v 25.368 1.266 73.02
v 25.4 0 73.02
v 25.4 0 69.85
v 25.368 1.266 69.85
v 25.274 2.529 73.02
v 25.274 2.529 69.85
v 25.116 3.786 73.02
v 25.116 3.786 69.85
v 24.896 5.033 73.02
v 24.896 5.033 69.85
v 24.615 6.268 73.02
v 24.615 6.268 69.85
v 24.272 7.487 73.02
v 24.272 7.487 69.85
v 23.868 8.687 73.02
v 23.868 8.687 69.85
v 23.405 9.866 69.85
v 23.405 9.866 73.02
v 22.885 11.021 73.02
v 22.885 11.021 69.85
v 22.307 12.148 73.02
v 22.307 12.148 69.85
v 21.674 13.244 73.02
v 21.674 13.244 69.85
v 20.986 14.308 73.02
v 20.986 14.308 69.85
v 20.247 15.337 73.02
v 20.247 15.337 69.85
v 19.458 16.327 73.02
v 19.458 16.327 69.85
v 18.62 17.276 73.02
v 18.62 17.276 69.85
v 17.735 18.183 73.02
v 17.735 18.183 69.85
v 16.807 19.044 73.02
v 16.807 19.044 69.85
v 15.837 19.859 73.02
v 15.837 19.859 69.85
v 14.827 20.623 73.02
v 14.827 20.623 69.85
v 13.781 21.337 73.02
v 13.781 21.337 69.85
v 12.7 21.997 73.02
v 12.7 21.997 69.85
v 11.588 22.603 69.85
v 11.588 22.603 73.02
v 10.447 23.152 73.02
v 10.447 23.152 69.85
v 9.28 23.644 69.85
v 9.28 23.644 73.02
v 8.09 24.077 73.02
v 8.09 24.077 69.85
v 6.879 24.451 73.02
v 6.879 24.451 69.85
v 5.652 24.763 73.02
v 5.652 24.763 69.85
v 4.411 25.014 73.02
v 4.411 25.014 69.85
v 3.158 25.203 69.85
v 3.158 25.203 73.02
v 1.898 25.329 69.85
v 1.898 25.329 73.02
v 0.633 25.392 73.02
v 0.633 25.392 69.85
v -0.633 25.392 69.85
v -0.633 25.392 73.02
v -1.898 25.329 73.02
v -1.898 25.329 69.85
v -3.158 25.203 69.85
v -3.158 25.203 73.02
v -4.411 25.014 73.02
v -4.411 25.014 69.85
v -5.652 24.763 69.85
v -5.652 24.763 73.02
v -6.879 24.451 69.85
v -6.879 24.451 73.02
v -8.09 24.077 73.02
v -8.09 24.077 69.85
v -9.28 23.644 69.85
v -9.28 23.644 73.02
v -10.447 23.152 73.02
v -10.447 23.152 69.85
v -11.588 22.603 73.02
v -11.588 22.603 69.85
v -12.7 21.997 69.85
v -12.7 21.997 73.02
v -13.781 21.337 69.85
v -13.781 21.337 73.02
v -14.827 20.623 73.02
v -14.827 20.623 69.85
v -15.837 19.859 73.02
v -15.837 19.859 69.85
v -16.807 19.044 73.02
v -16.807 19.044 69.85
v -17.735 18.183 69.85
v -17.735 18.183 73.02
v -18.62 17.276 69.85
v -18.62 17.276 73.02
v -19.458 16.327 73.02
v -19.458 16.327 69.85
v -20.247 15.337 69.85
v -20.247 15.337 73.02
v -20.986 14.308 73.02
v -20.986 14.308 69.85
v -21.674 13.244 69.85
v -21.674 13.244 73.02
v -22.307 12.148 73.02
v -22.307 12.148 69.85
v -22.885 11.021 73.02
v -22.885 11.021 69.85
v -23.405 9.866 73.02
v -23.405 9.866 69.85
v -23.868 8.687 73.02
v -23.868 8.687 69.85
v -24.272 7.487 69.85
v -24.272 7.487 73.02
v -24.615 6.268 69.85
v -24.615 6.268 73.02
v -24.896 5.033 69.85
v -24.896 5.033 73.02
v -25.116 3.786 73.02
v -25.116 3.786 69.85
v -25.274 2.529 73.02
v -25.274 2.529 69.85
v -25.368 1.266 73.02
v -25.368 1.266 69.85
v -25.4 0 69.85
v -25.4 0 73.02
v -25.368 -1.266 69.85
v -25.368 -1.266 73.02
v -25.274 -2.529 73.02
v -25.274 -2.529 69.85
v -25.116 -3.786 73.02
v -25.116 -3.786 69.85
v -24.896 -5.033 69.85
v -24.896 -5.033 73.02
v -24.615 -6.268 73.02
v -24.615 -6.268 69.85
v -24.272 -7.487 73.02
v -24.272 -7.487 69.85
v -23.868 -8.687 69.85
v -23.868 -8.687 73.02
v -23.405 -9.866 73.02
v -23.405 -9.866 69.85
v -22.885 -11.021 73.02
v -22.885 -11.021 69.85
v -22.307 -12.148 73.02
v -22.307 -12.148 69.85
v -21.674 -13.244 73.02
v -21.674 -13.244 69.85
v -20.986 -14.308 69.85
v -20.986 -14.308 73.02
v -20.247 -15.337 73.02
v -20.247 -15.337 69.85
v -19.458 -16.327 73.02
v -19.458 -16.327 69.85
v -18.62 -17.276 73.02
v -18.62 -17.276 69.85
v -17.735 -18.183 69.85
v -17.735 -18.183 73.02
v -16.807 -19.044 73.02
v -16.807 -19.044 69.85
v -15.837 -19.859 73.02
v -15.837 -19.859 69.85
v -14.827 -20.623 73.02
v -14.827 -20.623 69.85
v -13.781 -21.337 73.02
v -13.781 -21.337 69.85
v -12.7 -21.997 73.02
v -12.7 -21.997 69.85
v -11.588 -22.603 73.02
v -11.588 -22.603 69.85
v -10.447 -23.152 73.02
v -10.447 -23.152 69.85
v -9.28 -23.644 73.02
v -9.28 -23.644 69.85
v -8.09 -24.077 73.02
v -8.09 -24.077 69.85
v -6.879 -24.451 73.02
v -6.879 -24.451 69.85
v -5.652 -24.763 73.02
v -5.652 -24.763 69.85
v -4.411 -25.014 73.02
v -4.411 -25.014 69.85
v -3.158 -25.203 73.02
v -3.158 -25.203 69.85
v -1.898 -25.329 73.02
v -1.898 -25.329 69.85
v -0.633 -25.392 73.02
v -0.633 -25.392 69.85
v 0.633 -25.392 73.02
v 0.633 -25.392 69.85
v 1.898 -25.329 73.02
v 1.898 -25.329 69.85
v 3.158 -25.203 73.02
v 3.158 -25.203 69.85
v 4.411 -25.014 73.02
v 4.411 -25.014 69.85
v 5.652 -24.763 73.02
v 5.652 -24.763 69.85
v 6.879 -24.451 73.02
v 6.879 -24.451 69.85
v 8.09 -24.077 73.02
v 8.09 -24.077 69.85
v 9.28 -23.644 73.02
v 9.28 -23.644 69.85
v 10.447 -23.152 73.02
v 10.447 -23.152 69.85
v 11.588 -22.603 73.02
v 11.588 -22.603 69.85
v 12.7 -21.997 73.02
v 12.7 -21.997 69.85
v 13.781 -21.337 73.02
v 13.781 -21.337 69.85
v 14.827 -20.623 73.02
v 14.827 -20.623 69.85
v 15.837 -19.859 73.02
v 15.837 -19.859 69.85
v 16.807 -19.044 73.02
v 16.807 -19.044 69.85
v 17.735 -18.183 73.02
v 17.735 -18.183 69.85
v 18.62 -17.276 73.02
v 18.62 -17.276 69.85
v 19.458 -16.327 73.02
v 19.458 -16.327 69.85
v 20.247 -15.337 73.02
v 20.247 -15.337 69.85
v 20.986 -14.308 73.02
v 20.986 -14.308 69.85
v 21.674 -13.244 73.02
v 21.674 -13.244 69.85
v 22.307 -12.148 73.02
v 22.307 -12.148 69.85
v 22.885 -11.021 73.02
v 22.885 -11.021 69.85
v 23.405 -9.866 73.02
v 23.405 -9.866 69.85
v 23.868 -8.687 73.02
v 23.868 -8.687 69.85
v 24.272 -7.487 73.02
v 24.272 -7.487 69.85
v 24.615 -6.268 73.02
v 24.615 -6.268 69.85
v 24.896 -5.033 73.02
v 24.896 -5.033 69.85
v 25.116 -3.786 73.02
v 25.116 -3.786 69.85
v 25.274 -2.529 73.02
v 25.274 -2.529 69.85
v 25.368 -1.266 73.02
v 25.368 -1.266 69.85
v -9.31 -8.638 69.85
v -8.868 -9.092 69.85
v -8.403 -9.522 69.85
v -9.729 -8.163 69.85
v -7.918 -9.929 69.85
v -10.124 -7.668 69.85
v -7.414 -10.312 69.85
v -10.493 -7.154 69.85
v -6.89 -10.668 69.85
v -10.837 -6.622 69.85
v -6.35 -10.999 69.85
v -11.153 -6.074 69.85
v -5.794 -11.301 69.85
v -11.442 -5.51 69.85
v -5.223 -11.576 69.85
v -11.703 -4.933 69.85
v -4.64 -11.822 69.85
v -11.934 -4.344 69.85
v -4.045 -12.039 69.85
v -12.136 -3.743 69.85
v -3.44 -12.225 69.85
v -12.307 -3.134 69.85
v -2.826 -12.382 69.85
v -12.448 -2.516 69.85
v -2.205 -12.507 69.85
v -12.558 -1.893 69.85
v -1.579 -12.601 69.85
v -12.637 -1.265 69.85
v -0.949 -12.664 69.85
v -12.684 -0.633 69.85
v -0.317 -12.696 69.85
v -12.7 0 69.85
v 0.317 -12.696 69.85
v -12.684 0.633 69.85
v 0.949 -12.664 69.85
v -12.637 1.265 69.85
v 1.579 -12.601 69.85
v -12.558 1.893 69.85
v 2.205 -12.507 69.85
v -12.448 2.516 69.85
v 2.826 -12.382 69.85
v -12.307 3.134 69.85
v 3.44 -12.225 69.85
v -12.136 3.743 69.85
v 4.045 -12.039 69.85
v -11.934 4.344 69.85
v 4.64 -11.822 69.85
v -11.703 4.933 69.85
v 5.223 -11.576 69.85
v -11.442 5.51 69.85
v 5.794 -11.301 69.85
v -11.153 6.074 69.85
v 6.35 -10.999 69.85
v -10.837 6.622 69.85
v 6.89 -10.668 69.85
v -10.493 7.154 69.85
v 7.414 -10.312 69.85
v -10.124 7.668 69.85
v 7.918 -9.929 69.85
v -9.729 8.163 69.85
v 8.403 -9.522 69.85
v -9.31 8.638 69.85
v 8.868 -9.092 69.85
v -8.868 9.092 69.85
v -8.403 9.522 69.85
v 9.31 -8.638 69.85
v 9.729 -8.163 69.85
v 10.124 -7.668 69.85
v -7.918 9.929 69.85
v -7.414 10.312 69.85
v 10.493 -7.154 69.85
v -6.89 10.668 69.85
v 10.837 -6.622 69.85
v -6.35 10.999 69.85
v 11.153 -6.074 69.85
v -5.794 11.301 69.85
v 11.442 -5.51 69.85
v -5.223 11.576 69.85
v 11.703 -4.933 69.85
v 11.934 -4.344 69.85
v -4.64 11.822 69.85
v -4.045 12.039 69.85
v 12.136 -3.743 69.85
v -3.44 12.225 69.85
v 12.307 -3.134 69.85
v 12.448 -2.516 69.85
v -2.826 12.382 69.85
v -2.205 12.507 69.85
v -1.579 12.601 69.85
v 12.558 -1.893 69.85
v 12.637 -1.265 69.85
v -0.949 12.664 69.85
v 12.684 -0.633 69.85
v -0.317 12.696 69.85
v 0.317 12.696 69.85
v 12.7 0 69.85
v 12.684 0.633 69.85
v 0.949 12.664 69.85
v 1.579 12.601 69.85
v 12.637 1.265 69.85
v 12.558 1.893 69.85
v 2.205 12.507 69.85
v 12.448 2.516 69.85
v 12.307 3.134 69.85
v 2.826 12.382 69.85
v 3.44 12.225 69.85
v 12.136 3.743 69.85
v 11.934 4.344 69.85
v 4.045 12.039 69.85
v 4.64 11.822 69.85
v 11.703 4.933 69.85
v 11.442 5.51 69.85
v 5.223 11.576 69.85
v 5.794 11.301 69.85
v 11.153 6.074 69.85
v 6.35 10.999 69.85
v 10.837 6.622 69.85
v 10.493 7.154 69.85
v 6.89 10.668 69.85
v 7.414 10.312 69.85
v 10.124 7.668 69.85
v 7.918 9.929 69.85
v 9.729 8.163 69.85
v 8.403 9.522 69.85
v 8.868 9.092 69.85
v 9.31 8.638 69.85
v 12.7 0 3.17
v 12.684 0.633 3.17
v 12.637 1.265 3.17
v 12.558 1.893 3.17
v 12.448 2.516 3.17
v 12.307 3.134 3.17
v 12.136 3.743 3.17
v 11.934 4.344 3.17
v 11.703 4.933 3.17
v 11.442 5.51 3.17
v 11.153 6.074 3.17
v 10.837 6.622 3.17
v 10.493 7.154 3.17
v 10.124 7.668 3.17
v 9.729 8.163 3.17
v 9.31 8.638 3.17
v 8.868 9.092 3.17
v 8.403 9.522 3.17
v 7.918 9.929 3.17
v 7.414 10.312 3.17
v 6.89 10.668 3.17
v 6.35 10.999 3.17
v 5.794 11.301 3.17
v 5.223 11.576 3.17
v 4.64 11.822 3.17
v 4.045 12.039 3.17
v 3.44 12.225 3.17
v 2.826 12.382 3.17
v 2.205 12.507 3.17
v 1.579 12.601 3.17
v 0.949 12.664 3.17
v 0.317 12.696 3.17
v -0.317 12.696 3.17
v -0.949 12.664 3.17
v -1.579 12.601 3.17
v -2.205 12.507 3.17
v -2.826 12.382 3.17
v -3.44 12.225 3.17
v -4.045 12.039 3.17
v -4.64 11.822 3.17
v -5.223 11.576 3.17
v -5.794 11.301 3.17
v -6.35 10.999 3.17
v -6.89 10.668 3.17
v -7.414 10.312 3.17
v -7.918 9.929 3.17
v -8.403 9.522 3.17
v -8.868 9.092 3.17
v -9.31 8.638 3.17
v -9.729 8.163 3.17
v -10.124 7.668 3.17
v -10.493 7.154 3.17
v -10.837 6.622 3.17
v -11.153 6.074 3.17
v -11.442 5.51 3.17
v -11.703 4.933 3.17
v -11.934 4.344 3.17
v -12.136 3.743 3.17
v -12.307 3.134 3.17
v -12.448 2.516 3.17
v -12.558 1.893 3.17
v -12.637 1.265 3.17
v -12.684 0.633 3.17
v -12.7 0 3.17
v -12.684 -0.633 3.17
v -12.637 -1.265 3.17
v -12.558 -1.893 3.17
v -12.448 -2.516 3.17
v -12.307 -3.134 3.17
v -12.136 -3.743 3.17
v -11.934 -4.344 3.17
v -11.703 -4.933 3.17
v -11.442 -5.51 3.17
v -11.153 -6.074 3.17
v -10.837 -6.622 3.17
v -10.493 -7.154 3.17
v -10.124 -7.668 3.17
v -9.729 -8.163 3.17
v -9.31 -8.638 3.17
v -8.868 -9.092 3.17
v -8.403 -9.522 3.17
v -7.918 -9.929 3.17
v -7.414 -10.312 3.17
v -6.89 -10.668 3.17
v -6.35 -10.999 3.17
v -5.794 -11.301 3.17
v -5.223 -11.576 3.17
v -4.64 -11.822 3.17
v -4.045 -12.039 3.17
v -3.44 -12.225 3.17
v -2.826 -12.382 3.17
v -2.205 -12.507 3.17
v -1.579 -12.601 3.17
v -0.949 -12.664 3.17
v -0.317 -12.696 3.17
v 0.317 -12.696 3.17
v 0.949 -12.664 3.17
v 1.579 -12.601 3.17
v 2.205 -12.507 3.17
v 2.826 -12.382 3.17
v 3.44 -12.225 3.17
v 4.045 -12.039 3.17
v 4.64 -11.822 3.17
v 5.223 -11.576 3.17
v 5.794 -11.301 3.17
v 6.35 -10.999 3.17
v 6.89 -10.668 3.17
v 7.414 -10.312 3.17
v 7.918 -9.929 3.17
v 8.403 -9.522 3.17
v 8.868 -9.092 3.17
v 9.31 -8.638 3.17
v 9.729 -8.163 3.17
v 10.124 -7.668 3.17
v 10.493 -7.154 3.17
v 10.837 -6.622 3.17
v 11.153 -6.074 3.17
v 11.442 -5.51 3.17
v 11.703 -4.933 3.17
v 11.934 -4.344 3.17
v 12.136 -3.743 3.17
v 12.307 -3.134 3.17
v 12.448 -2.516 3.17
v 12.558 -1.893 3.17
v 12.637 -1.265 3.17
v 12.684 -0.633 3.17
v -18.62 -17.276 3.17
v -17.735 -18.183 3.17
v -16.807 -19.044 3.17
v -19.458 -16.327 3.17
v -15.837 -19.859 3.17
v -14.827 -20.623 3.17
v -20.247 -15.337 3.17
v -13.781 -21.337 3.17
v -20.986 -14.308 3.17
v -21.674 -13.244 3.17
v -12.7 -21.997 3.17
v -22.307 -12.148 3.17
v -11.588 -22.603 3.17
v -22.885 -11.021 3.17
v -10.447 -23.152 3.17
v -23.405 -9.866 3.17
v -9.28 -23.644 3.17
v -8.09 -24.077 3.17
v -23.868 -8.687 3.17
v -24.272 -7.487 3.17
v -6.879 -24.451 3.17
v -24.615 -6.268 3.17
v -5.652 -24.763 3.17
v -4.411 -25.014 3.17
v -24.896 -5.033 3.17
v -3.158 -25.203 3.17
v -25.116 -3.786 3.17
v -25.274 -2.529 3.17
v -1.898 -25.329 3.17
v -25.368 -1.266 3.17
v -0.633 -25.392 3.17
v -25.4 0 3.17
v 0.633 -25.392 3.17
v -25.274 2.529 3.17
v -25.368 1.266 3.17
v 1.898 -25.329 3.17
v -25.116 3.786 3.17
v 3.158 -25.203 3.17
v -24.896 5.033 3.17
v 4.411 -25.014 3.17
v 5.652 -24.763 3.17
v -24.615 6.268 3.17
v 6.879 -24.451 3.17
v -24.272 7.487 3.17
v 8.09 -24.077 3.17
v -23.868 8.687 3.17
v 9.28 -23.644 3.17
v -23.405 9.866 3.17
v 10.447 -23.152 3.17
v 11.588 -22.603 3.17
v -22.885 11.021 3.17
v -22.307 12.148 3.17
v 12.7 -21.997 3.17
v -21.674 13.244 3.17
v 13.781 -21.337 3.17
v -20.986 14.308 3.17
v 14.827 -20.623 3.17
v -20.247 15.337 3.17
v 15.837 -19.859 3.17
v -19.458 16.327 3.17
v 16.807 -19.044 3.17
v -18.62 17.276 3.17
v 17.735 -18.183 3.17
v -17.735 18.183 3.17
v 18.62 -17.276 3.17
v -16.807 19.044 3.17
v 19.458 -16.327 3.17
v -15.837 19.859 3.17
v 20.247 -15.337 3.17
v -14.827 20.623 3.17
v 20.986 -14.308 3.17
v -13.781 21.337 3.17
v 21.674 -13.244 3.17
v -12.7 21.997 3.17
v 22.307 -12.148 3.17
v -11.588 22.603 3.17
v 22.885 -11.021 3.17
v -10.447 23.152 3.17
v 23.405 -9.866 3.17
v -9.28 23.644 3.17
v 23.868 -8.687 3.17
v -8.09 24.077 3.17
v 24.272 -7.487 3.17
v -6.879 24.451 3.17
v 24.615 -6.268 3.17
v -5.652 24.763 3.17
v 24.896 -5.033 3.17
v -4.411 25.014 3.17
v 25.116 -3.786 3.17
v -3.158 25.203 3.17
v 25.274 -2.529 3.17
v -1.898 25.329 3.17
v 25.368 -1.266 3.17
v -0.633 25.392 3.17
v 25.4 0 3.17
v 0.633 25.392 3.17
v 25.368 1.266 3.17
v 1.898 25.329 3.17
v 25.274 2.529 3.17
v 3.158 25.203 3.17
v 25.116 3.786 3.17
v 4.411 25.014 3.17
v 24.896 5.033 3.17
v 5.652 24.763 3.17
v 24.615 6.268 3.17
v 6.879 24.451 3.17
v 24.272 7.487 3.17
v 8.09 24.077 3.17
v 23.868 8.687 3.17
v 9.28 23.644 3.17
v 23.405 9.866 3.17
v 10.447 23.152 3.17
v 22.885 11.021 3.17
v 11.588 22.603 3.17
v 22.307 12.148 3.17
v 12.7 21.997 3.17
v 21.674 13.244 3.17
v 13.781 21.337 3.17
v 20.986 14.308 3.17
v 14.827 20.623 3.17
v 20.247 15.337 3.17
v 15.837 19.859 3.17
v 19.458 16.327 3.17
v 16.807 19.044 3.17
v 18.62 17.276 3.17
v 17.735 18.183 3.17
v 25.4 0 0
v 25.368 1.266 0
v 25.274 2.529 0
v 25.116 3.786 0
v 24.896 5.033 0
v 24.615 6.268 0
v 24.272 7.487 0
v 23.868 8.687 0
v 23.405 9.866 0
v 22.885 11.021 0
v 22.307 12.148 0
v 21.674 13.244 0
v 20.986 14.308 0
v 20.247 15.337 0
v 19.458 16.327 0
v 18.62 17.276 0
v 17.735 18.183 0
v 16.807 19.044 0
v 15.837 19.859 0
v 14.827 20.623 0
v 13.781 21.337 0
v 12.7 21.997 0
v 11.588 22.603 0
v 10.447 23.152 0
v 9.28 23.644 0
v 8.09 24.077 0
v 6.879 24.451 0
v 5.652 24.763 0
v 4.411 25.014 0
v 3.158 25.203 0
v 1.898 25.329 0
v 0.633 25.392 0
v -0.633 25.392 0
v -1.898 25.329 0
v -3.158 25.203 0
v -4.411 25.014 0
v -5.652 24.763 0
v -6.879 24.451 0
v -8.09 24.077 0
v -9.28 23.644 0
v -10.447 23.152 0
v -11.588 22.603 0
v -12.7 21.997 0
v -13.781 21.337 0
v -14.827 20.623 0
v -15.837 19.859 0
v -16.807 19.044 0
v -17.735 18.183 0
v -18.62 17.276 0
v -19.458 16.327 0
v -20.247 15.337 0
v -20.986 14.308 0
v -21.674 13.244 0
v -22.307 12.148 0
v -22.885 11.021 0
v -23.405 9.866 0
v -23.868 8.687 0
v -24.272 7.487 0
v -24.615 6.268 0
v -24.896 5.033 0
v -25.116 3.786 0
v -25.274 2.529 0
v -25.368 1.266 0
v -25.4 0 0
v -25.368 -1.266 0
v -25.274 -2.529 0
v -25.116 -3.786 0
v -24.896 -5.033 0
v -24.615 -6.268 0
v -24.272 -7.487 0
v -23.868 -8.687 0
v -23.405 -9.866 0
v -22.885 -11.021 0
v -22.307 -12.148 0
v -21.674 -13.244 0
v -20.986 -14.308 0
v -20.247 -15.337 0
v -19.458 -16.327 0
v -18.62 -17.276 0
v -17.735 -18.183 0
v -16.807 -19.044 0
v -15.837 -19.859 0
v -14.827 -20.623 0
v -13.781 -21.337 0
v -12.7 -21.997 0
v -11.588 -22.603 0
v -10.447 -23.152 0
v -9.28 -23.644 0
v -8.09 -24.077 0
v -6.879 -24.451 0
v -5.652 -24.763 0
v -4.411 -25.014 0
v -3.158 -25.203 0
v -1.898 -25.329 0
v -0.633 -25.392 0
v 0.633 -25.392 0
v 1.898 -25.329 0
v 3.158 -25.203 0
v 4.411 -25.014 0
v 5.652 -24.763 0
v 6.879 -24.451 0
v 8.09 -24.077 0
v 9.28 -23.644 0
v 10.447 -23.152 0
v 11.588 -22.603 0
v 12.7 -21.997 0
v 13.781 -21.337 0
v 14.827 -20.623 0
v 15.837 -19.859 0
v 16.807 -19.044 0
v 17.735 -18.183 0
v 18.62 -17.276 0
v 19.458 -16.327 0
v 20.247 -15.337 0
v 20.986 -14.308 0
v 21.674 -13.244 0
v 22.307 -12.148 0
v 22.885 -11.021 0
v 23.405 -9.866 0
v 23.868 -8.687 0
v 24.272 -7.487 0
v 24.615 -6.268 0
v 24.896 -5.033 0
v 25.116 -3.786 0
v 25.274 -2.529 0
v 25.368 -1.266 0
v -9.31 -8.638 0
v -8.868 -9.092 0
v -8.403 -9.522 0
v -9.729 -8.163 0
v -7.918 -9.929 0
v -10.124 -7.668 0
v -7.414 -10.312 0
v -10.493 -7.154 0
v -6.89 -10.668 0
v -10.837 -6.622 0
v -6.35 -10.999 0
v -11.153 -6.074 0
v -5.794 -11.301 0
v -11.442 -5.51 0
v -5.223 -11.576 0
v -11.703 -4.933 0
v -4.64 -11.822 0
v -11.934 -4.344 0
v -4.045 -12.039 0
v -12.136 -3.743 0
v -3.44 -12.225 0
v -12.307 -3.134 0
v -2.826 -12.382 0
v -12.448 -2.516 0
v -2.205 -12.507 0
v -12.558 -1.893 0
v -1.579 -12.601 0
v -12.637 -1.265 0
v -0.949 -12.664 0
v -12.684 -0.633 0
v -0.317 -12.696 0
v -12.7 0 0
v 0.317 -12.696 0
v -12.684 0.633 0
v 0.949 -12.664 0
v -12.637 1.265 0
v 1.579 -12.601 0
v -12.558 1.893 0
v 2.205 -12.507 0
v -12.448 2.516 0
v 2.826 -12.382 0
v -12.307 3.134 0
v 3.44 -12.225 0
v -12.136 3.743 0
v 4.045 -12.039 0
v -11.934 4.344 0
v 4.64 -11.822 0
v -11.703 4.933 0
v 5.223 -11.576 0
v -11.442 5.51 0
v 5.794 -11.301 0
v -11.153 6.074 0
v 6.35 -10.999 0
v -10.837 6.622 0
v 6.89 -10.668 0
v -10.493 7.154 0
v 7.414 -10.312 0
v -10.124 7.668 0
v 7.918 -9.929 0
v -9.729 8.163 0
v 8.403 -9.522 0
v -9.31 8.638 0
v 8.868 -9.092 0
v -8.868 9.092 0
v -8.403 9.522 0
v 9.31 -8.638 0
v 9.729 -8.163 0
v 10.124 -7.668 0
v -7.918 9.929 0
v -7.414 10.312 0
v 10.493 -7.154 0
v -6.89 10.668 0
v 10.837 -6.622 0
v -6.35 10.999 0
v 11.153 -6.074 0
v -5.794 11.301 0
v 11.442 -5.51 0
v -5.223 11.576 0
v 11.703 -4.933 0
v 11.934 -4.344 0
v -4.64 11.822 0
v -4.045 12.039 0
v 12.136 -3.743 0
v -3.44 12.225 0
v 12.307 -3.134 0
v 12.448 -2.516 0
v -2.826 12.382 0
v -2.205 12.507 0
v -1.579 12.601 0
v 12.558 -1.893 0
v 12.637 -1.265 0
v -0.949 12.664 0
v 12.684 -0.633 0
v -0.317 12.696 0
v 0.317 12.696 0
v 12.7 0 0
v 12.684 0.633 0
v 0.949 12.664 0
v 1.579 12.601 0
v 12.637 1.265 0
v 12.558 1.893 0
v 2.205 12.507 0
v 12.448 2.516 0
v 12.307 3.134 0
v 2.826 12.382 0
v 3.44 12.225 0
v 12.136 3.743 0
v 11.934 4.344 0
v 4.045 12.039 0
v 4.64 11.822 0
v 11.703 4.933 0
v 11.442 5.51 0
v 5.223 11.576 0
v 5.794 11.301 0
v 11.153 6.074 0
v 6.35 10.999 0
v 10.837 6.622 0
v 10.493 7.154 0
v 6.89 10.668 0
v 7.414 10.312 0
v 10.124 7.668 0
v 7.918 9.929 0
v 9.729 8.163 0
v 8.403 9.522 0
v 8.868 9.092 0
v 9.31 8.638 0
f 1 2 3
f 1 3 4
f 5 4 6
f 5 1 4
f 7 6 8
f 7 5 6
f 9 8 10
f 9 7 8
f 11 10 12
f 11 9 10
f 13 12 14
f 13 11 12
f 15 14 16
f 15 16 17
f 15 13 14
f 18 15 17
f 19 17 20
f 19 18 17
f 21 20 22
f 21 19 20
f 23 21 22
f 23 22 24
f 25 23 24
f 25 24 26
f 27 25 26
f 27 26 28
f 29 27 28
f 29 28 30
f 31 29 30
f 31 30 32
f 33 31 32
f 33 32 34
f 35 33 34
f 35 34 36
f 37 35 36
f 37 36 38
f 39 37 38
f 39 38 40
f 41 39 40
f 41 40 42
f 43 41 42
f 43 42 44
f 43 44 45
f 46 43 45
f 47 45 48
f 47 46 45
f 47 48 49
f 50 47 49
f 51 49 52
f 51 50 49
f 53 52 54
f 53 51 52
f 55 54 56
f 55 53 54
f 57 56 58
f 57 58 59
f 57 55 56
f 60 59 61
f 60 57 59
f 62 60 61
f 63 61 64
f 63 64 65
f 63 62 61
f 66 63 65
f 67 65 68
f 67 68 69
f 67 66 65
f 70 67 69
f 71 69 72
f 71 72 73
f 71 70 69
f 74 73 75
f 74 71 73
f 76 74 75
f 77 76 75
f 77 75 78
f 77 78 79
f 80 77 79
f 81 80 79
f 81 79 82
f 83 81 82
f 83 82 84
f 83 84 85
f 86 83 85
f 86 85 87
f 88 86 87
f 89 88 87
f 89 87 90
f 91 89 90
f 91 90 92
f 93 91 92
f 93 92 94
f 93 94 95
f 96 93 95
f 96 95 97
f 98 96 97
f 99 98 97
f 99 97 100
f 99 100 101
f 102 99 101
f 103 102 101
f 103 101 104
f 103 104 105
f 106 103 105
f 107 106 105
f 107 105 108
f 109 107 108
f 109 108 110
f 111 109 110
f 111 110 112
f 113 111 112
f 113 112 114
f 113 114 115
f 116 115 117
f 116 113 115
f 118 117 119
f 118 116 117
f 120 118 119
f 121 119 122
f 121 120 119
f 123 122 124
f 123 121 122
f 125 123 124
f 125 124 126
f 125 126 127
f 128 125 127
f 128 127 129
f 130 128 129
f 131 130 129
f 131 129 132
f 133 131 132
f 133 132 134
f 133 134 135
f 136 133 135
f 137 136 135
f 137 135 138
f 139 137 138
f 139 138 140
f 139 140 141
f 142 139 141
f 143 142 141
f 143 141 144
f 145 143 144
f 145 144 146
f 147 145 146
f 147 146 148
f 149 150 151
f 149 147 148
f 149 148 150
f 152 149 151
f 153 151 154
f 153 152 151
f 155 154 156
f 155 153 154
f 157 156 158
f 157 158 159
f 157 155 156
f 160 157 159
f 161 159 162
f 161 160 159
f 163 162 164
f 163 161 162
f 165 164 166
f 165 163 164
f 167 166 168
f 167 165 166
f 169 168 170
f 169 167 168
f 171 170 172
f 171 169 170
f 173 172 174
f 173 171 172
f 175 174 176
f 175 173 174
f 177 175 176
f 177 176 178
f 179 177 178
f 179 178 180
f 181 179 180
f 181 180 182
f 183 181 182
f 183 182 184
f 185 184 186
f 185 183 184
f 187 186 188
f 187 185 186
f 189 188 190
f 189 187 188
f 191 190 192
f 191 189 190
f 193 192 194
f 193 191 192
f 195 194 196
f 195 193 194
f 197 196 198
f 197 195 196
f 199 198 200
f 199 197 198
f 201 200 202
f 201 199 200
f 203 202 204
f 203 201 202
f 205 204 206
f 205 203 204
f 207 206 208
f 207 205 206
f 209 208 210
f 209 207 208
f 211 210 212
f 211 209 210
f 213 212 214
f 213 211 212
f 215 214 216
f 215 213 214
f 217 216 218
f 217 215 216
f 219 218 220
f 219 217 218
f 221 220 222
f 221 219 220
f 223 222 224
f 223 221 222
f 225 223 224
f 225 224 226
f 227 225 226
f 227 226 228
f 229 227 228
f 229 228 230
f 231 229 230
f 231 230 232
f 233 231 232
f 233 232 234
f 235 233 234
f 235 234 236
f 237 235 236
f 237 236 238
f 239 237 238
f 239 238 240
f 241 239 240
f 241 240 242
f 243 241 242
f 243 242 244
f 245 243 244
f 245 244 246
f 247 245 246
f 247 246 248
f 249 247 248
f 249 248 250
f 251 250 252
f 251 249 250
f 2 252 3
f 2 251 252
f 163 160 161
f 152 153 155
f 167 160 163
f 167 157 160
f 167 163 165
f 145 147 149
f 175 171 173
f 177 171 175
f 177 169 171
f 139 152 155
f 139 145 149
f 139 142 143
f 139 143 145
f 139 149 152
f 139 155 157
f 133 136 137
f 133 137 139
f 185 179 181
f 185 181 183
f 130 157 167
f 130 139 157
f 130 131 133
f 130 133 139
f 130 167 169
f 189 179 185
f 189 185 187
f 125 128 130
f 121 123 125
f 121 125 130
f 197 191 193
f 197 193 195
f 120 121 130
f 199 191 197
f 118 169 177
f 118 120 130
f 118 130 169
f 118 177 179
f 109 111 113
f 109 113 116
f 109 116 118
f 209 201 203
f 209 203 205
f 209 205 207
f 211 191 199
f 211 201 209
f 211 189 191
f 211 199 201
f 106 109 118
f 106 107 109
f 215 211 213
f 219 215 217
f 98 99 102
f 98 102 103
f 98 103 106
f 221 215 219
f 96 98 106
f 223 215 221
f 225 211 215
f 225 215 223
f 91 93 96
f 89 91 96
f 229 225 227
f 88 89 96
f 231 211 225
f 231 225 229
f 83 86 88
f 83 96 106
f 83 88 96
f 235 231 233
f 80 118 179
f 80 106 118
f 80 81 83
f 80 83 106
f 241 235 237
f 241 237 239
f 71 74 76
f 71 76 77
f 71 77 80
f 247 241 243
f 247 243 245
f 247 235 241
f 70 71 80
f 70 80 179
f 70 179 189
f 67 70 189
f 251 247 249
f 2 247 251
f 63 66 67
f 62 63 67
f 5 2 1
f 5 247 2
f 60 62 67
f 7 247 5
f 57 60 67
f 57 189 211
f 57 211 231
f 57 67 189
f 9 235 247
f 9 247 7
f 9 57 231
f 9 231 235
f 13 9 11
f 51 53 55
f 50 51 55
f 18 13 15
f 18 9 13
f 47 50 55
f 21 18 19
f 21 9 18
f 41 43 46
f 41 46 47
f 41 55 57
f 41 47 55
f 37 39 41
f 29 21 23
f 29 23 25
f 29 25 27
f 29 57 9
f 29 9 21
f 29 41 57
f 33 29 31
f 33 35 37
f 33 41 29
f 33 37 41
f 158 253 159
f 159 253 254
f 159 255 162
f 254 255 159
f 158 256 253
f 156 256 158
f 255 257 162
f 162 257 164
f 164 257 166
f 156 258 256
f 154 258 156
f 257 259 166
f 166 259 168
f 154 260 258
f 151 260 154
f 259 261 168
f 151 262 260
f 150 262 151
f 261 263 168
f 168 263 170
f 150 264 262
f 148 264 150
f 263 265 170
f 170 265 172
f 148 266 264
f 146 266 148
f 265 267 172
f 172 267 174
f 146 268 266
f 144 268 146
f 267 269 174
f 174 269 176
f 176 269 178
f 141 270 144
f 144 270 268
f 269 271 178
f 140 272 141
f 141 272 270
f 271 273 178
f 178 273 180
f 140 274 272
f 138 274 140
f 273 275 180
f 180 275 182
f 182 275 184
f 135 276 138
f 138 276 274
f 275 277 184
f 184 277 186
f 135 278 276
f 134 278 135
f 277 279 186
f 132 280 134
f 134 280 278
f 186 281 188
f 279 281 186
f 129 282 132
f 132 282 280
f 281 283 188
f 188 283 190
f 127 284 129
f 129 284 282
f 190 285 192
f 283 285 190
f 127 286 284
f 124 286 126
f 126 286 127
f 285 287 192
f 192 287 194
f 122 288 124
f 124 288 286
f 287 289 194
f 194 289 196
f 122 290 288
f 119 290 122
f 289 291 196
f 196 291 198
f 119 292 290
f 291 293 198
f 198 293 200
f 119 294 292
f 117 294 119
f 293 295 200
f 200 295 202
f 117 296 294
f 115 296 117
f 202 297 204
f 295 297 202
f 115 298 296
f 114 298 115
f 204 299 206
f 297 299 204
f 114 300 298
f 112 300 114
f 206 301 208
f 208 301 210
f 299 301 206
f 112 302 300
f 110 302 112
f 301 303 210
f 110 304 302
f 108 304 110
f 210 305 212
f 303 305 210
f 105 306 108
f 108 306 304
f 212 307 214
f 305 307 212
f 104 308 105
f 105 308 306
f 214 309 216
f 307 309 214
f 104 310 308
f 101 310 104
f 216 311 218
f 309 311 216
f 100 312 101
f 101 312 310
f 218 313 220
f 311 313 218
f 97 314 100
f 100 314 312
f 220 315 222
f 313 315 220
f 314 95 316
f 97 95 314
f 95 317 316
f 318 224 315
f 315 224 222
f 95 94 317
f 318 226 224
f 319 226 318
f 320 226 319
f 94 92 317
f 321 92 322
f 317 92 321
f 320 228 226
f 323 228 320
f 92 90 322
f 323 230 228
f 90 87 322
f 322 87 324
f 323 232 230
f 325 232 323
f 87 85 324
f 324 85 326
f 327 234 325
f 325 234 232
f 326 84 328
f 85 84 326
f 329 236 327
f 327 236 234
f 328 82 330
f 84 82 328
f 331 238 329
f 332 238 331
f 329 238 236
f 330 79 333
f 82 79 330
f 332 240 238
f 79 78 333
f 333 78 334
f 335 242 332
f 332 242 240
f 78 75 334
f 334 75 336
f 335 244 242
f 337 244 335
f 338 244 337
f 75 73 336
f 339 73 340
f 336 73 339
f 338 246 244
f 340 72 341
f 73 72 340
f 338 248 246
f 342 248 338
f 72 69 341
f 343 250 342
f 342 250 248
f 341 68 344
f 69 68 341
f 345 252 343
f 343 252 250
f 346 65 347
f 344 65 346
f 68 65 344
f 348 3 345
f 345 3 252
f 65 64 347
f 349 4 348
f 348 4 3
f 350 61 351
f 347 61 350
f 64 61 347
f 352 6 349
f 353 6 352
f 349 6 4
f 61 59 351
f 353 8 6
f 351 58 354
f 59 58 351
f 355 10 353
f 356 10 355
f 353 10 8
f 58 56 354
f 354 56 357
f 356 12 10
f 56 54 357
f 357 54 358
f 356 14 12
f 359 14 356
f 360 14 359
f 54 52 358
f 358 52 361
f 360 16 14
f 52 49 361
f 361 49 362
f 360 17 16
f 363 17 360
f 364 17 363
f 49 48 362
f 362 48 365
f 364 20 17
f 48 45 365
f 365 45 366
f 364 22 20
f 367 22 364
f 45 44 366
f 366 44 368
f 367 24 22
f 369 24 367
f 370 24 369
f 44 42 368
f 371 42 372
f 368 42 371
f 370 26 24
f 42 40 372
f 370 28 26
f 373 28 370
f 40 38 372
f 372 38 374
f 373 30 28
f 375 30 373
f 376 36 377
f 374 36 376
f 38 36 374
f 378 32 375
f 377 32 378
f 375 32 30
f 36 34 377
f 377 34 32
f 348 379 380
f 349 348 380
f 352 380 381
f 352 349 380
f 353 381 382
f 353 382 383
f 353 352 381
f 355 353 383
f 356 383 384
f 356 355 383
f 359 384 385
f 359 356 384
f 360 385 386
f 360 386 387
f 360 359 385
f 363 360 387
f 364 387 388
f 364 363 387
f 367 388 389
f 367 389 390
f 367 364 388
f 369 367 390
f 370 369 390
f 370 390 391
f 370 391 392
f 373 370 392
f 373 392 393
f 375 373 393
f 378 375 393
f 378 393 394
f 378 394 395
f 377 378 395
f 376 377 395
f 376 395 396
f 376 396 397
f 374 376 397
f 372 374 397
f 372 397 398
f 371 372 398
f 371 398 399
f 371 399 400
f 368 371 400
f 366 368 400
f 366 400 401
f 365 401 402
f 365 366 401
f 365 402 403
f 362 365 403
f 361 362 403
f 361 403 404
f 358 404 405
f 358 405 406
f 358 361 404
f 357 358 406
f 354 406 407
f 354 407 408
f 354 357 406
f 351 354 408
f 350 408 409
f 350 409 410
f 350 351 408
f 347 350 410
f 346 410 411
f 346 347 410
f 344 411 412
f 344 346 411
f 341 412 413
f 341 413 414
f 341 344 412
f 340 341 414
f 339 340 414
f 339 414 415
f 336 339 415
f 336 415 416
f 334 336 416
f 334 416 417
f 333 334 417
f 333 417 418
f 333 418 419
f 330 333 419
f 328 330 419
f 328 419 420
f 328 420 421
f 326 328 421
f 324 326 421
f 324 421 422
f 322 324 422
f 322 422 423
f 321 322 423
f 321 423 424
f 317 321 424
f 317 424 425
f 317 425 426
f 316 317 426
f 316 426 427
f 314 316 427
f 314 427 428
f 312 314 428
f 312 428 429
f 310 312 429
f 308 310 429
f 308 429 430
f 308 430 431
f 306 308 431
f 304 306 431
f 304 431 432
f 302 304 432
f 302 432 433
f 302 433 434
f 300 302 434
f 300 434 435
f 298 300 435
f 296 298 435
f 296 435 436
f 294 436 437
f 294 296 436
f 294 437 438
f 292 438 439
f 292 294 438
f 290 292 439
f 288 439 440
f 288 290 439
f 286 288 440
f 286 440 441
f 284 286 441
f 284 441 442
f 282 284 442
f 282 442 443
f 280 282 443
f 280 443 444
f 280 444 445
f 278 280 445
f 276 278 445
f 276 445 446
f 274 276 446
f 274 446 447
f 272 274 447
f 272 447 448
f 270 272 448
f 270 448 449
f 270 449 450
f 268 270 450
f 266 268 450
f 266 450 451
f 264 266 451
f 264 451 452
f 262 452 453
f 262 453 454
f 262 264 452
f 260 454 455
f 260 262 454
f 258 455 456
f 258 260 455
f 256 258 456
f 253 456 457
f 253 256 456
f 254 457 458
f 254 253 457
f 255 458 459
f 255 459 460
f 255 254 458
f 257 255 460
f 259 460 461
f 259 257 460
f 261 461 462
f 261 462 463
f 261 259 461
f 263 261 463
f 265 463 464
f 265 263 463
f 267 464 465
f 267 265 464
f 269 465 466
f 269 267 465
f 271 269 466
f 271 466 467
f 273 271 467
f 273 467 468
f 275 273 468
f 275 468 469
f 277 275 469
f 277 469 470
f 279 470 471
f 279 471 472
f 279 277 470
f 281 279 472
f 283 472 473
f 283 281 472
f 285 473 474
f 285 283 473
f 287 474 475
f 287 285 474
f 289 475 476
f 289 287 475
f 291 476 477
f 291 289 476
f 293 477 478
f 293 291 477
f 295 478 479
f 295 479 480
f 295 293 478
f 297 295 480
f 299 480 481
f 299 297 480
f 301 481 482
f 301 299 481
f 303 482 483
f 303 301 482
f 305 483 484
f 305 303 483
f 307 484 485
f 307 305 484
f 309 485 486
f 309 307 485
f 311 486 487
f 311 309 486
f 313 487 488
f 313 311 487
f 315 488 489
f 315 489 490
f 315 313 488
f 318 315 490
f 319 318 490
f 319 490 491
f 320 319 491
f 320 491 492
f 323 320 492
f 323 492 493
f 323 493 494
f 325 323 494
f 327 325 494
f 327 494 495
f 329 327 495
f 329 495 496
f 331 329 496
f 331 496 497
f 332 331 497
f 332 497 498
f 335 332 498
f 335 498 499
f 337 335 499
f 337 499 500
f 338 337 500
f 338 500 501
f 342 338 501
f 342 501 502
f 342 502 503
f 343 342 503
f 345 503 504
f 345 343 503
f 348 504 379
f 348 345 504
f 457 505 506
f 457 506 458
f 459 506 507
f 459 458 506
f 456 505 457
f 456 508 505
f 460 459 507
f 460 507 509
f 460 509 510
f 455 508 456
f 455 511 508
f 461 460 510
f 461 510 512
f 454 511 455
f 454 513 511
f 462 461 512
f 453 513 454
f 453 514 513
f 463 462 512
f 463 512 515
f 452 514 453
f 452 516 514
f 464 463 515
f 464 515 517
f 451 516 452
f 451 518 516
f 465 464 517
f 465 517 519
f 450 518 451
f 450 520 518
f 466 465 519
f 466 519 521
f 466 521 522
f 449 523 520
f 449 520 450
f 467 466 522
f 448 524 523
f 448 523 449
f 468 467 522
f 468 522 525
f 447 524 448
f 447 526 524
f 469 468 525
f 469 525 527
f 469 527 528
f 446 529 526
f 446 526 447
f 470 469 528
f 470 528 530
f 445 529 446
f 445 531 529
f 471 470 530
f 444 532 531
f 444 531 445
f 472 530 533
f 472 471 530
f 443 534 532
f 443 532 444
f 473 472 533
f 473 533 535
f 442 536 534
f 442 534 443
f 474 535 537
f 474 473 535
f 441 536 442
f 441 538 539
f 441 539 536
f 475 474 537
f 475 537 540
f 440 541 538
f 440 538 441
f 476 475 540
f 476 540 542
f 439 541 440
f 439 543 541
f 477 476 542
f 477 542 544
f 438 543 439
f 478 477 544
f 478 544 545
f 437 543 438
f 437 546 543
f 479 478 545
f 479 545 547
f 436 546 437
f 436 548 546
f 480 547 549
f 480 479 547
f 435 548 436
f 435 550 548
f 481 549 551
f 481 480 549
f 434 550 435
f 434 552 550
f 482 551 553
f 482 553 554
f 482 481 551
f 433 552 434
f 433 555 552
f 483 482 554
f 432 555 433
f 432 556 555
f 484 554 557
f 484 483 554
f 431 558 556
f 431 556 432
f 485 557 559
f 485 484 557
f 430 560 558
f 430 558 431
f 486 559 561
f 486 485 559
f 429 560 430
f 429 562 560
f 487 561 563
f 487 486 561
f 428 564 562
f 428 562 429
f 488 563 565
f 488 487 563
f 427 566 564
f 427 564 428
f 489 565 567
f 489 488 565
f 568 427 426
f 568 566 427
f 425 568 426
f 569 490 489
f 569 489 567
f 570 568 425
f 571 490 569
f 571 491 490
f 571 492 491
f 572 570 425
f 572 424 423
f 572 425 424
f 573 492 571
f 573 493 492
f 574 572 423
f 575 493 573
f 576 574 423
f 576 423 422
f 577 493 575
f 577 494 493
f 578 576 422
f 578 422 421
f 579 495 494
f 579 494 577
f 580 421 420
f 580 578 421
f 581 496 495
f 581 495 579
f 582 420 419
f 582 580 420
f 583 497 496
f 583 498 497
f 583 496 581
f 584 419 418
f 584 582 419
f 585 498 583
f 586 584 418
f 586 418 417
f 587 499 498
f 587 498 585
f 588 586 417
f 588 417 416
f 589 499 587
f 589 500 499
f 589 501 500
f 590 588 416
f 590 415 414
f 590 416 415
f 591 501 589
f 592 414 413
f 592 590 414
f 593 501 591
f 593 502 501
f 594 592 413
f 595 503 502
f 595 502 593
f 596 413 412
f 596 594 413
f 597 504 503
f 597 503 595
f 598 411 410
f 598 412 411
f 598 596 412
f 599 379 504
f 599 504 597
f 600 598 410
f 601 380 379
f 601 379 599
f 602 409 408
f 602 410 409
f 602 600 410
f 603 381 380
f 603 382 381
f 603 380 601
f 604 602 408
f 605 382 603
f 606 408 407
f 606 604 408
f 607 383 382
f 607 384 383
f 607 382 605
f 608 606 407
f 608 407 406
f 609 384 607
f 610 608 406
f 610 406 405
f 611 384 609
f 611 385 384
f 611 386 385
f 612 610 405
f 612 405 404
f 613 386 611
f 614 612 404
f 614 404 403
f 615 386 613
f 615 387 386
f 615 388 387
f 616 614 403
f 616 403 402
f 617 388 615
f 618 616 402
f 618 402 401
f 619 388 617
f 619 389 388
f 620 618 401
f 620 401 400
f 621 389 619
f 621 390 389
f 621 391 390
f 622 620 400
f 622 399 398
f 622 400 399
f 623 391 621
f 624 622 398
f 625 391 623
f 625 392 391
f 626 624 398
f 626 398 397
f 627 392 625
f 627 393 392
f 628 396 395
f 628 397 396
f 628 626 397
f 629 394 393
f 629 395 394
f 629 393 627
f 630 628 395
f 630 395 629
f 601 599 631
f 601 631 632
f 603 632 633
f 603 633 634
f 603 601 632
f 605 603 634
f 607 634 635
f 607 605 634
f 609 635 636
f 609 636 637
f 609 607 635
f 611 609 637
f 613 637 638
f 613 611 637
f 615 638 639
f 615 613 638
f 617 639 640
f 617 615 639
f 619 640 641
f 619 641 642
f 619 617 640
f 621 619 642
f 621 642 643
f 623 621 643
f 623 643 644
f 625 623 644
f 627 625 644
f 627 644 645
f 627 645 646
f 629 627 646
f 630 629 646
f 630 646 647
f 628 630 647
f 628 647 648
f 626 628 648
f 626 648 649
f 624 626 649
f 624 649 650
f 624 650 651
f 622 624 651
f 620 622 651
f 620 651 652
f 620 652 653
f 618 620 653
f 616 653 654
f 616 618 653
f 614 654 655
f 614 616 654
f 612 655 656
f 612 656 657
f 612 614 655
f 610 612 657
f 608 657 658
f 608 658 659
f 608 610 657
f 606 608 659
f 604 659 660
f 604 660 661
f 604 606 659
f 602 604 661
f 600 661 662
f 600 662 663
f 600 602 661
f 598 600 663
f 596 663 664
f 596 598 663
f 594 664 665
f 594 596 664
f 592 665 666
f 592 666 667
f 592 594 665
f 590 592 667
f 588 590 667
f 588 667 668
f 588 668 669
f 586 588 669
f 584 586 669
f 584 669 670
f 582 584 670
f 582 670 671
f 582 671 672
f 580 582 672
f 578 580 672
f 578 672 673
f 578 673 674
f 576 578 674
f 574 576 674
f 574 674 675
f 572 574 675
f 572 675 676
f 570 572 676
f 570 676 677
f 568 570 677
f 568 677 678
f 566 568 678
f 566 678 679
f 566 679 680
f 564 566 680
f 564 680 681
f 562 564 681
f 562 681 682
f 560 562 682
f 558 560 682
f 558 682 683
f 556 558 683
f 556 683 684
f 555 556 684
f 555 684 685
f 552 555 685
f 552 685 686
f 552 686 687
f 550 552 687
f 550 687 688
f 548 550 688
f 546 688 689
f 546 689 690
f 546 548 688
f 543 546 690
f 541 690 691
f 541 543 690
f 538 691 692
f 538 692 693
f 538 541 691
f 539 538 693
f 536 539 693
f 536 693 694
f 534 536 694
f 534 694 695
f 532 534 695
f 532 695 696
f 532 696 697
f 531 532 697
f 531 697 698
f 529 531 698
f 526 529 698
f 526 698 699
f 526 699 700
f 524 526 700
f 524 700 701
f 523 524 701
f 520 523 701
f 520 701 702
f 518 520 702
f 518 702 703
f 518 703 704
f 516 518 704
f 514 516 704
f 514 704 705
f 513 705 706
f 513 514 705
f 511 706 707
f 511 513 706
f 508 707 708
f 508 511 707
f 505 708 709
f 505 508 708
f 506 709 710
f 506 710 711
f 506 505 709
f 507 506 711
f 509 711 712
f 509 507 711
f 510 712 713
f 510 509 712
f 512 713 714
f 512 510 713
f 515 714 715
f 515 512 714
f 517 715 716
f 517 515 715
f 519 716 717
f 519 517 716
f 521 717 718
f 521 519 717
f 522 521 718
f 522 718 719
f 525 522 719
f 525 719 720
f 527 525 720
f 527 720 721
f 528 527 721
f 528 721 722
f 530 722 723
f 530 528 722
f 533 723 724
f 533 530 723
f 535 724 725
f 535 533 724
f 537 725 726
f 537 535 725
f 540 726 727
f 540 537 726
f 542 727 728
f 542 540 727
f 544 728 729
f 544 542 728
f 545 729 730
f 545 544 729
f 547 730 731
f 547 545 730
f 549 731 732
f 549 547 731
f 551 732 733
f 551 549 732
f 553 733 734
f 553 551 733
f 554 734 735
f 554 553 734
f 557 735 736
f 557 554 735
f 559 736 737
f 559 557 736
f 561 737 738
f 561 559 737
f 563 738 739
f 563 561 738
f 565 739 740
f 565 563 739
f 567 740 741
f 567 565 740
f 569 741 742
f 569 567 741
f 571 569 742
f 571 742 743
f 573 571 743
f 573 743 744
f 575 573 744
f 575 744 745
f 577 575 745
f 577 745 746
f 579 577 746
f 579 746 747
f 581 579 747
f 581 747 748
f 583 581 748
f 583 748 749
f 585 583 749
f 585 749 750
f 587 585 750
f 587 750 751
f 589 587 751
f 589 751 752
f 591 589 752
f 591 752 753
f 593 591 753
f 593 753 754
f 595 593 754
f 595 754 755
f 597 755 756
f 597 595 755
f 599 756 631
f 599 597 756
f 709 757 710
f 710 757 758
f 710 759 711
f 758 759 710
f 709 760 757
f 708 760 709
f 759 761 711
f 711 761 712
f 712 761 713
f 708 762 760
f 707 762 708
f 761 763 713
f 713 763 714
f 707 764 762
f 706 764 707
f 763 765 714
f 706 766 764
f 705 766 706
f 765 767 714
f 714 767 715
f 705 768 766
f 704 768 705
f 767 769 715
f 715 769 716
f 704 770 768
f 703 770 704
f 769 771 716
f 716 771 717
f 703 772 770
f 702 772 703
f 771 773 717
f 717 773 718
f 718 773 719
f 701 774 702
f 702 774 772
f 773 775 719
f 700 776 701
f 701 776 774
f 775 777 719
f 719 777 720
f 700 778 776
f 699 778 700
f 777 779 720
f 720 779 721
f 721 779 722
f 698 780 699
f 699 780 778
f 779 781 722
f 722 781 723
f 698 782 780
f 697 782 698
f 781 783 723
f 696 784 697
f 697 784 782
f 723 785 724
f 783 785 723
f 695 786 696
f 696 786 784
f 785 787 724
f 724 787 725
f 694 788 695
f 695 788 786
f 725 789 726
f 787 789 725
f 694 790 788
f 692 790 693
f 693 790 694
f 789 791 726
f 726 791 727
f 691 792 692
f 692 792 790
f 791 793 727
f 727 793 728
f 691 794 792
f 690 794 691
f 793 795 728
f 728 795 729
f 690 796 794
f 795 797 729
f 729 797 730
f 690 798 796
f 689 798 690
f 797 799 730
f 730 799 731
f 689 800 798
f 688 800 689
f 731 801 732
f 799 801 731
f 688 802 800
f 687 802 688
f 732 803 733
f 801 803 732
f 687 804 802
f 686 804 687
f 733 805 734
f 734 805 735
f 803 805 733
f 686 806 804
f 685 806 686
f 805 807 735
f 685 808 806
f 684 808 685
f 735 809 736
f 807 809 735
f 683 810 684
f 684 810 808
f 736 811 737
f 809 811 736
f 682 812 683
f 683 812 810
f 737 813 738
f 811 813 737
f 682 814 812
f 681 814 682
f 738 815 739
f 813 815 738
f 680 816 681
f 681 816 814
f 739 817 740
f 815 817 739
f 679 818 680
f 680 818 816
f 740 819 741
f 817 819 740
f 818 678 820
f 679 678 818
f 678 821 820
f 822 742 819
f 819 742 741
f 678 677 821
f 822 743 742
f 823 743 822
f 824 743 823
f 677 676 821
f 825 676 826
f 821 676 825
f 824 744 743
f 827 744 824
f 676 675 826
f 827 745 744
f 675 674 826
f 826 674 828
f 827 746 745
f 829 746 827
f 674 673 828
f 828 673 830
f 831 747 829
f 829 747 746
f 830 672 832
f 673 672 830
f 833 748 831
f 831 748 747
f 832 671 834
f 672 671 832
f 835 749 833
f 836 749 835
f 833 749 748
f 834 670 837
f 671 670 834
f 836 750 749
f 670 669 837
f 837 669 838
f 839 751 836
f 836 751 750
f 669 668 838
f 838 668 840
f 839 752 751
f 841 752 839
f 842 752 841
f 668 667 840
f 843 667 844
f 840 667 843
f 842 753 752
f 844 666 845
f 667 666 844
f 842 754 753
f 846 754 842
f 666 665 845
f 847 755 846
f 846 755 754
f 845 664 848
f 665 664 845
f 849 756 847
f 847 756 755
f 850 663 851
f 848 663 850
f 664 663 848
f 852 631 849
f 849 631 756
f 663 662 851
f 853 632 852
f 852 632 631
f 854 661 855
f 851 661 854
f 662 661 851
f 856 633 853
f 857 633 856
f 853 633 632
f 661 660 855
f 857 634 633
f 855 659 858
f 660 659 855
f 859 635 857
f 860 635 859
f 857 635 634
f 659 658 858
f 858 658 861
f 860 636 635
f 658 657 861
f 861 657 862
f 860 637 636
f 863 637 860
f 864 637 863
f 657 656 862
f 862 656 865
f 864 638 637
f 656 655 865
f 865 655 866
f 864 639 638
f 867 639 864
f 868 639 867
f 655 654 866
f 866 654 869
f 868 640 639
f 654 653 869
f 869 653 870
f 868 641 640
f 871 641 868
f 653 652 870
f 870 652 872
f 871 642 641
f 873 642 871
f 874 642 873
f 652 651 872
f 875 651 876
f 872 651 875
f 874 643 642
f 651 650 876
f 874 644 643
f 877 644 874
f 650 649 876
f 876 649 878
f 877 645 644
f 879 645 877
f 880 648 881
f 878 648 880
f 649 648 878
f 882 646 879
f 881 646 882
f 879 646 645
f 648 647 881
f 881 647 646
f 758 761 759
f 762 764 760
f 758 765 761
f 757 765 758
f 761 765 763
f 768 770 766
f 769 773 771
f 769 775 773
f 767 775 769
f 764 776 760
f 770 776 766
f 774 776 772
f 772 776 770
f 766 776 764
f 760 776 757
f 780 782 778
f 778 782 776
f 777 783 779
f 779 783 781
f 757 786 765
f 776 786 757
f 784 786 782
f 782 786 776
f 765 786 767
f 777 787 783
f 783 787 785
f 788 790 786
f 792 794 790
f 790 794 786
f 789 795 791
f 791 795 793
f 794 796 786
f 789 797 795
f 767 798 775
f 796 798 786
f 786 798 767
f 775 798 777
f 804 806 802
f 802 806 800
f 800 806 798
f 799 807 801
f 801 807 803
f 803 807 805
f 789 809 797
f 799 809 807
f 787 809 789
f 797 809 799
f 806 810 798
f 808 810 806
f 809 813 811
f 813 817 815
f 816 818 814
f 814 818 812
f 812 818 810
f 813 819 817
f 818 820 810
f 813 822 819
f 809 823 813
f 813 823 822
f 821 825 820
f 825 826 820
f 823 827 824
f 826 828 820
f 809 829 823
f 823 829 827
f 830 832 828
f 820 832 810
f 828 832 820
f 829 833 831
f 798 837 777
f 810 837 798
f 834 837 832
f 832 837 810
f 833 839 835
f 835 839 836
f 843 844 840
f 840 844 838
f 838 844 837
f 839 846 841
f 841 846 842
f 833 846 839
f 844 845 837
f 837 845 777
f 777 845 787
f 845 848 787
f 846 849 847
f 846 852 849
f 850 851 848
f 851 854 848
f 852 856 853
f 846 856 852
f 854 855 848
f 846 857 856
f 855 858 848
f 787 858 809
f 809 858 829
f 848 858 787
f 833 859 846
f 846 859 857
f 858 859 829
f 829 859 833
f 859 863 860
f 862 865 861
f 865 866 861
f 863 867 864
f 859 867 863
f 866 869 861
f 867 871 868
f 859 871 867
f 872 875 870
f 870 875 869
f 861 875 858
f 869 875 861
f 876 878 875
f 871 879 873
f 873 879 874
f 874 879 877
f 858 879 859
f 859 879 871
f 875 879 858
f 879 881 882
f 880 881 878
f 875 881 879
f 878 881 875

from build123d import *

# Parameters (mm, degrees)
CYLINDER003_R     = 25.4
CYLINDER003_DEPTH = 3.17
CYLINDER001_R     = 12.7
CYLINDER001_DEPTH = 69.85
CYLINDER004_R     = 25.4
CYLINDER004_DEPTH = 3.17


with BuildPart() as cylinder003:
    # Cylinder003 → Cylinder003 (new body)
    with BuildSketch(Plane.XY):
        Circle(CYLINDER003_R)
    extrude(amount=CYLINDER003_DEPTH)


with BuildPart() as cylinder001:
    # Cylinder001 → Cylinder001 (new body)
    with BuildSketch(Plane.XY):
        Circle(CYLINDER001_R)
    extrude(amount=CYLINDER001_DEPTH)


with BuildPart() as fusion:
    # Cylinder004 → Cylinder004 (new body)
    with BuildSketch(Plane.XY.offset(69.85)):
        Circle(CYLINDER004_R)
    extrude(amount=CYLINDER004_DEPTH)

    # Fusion: union Cylinder003, Cylinder001
    add(cylinder003.part)
    add(cylinder001.part)


solid = fusion.part
